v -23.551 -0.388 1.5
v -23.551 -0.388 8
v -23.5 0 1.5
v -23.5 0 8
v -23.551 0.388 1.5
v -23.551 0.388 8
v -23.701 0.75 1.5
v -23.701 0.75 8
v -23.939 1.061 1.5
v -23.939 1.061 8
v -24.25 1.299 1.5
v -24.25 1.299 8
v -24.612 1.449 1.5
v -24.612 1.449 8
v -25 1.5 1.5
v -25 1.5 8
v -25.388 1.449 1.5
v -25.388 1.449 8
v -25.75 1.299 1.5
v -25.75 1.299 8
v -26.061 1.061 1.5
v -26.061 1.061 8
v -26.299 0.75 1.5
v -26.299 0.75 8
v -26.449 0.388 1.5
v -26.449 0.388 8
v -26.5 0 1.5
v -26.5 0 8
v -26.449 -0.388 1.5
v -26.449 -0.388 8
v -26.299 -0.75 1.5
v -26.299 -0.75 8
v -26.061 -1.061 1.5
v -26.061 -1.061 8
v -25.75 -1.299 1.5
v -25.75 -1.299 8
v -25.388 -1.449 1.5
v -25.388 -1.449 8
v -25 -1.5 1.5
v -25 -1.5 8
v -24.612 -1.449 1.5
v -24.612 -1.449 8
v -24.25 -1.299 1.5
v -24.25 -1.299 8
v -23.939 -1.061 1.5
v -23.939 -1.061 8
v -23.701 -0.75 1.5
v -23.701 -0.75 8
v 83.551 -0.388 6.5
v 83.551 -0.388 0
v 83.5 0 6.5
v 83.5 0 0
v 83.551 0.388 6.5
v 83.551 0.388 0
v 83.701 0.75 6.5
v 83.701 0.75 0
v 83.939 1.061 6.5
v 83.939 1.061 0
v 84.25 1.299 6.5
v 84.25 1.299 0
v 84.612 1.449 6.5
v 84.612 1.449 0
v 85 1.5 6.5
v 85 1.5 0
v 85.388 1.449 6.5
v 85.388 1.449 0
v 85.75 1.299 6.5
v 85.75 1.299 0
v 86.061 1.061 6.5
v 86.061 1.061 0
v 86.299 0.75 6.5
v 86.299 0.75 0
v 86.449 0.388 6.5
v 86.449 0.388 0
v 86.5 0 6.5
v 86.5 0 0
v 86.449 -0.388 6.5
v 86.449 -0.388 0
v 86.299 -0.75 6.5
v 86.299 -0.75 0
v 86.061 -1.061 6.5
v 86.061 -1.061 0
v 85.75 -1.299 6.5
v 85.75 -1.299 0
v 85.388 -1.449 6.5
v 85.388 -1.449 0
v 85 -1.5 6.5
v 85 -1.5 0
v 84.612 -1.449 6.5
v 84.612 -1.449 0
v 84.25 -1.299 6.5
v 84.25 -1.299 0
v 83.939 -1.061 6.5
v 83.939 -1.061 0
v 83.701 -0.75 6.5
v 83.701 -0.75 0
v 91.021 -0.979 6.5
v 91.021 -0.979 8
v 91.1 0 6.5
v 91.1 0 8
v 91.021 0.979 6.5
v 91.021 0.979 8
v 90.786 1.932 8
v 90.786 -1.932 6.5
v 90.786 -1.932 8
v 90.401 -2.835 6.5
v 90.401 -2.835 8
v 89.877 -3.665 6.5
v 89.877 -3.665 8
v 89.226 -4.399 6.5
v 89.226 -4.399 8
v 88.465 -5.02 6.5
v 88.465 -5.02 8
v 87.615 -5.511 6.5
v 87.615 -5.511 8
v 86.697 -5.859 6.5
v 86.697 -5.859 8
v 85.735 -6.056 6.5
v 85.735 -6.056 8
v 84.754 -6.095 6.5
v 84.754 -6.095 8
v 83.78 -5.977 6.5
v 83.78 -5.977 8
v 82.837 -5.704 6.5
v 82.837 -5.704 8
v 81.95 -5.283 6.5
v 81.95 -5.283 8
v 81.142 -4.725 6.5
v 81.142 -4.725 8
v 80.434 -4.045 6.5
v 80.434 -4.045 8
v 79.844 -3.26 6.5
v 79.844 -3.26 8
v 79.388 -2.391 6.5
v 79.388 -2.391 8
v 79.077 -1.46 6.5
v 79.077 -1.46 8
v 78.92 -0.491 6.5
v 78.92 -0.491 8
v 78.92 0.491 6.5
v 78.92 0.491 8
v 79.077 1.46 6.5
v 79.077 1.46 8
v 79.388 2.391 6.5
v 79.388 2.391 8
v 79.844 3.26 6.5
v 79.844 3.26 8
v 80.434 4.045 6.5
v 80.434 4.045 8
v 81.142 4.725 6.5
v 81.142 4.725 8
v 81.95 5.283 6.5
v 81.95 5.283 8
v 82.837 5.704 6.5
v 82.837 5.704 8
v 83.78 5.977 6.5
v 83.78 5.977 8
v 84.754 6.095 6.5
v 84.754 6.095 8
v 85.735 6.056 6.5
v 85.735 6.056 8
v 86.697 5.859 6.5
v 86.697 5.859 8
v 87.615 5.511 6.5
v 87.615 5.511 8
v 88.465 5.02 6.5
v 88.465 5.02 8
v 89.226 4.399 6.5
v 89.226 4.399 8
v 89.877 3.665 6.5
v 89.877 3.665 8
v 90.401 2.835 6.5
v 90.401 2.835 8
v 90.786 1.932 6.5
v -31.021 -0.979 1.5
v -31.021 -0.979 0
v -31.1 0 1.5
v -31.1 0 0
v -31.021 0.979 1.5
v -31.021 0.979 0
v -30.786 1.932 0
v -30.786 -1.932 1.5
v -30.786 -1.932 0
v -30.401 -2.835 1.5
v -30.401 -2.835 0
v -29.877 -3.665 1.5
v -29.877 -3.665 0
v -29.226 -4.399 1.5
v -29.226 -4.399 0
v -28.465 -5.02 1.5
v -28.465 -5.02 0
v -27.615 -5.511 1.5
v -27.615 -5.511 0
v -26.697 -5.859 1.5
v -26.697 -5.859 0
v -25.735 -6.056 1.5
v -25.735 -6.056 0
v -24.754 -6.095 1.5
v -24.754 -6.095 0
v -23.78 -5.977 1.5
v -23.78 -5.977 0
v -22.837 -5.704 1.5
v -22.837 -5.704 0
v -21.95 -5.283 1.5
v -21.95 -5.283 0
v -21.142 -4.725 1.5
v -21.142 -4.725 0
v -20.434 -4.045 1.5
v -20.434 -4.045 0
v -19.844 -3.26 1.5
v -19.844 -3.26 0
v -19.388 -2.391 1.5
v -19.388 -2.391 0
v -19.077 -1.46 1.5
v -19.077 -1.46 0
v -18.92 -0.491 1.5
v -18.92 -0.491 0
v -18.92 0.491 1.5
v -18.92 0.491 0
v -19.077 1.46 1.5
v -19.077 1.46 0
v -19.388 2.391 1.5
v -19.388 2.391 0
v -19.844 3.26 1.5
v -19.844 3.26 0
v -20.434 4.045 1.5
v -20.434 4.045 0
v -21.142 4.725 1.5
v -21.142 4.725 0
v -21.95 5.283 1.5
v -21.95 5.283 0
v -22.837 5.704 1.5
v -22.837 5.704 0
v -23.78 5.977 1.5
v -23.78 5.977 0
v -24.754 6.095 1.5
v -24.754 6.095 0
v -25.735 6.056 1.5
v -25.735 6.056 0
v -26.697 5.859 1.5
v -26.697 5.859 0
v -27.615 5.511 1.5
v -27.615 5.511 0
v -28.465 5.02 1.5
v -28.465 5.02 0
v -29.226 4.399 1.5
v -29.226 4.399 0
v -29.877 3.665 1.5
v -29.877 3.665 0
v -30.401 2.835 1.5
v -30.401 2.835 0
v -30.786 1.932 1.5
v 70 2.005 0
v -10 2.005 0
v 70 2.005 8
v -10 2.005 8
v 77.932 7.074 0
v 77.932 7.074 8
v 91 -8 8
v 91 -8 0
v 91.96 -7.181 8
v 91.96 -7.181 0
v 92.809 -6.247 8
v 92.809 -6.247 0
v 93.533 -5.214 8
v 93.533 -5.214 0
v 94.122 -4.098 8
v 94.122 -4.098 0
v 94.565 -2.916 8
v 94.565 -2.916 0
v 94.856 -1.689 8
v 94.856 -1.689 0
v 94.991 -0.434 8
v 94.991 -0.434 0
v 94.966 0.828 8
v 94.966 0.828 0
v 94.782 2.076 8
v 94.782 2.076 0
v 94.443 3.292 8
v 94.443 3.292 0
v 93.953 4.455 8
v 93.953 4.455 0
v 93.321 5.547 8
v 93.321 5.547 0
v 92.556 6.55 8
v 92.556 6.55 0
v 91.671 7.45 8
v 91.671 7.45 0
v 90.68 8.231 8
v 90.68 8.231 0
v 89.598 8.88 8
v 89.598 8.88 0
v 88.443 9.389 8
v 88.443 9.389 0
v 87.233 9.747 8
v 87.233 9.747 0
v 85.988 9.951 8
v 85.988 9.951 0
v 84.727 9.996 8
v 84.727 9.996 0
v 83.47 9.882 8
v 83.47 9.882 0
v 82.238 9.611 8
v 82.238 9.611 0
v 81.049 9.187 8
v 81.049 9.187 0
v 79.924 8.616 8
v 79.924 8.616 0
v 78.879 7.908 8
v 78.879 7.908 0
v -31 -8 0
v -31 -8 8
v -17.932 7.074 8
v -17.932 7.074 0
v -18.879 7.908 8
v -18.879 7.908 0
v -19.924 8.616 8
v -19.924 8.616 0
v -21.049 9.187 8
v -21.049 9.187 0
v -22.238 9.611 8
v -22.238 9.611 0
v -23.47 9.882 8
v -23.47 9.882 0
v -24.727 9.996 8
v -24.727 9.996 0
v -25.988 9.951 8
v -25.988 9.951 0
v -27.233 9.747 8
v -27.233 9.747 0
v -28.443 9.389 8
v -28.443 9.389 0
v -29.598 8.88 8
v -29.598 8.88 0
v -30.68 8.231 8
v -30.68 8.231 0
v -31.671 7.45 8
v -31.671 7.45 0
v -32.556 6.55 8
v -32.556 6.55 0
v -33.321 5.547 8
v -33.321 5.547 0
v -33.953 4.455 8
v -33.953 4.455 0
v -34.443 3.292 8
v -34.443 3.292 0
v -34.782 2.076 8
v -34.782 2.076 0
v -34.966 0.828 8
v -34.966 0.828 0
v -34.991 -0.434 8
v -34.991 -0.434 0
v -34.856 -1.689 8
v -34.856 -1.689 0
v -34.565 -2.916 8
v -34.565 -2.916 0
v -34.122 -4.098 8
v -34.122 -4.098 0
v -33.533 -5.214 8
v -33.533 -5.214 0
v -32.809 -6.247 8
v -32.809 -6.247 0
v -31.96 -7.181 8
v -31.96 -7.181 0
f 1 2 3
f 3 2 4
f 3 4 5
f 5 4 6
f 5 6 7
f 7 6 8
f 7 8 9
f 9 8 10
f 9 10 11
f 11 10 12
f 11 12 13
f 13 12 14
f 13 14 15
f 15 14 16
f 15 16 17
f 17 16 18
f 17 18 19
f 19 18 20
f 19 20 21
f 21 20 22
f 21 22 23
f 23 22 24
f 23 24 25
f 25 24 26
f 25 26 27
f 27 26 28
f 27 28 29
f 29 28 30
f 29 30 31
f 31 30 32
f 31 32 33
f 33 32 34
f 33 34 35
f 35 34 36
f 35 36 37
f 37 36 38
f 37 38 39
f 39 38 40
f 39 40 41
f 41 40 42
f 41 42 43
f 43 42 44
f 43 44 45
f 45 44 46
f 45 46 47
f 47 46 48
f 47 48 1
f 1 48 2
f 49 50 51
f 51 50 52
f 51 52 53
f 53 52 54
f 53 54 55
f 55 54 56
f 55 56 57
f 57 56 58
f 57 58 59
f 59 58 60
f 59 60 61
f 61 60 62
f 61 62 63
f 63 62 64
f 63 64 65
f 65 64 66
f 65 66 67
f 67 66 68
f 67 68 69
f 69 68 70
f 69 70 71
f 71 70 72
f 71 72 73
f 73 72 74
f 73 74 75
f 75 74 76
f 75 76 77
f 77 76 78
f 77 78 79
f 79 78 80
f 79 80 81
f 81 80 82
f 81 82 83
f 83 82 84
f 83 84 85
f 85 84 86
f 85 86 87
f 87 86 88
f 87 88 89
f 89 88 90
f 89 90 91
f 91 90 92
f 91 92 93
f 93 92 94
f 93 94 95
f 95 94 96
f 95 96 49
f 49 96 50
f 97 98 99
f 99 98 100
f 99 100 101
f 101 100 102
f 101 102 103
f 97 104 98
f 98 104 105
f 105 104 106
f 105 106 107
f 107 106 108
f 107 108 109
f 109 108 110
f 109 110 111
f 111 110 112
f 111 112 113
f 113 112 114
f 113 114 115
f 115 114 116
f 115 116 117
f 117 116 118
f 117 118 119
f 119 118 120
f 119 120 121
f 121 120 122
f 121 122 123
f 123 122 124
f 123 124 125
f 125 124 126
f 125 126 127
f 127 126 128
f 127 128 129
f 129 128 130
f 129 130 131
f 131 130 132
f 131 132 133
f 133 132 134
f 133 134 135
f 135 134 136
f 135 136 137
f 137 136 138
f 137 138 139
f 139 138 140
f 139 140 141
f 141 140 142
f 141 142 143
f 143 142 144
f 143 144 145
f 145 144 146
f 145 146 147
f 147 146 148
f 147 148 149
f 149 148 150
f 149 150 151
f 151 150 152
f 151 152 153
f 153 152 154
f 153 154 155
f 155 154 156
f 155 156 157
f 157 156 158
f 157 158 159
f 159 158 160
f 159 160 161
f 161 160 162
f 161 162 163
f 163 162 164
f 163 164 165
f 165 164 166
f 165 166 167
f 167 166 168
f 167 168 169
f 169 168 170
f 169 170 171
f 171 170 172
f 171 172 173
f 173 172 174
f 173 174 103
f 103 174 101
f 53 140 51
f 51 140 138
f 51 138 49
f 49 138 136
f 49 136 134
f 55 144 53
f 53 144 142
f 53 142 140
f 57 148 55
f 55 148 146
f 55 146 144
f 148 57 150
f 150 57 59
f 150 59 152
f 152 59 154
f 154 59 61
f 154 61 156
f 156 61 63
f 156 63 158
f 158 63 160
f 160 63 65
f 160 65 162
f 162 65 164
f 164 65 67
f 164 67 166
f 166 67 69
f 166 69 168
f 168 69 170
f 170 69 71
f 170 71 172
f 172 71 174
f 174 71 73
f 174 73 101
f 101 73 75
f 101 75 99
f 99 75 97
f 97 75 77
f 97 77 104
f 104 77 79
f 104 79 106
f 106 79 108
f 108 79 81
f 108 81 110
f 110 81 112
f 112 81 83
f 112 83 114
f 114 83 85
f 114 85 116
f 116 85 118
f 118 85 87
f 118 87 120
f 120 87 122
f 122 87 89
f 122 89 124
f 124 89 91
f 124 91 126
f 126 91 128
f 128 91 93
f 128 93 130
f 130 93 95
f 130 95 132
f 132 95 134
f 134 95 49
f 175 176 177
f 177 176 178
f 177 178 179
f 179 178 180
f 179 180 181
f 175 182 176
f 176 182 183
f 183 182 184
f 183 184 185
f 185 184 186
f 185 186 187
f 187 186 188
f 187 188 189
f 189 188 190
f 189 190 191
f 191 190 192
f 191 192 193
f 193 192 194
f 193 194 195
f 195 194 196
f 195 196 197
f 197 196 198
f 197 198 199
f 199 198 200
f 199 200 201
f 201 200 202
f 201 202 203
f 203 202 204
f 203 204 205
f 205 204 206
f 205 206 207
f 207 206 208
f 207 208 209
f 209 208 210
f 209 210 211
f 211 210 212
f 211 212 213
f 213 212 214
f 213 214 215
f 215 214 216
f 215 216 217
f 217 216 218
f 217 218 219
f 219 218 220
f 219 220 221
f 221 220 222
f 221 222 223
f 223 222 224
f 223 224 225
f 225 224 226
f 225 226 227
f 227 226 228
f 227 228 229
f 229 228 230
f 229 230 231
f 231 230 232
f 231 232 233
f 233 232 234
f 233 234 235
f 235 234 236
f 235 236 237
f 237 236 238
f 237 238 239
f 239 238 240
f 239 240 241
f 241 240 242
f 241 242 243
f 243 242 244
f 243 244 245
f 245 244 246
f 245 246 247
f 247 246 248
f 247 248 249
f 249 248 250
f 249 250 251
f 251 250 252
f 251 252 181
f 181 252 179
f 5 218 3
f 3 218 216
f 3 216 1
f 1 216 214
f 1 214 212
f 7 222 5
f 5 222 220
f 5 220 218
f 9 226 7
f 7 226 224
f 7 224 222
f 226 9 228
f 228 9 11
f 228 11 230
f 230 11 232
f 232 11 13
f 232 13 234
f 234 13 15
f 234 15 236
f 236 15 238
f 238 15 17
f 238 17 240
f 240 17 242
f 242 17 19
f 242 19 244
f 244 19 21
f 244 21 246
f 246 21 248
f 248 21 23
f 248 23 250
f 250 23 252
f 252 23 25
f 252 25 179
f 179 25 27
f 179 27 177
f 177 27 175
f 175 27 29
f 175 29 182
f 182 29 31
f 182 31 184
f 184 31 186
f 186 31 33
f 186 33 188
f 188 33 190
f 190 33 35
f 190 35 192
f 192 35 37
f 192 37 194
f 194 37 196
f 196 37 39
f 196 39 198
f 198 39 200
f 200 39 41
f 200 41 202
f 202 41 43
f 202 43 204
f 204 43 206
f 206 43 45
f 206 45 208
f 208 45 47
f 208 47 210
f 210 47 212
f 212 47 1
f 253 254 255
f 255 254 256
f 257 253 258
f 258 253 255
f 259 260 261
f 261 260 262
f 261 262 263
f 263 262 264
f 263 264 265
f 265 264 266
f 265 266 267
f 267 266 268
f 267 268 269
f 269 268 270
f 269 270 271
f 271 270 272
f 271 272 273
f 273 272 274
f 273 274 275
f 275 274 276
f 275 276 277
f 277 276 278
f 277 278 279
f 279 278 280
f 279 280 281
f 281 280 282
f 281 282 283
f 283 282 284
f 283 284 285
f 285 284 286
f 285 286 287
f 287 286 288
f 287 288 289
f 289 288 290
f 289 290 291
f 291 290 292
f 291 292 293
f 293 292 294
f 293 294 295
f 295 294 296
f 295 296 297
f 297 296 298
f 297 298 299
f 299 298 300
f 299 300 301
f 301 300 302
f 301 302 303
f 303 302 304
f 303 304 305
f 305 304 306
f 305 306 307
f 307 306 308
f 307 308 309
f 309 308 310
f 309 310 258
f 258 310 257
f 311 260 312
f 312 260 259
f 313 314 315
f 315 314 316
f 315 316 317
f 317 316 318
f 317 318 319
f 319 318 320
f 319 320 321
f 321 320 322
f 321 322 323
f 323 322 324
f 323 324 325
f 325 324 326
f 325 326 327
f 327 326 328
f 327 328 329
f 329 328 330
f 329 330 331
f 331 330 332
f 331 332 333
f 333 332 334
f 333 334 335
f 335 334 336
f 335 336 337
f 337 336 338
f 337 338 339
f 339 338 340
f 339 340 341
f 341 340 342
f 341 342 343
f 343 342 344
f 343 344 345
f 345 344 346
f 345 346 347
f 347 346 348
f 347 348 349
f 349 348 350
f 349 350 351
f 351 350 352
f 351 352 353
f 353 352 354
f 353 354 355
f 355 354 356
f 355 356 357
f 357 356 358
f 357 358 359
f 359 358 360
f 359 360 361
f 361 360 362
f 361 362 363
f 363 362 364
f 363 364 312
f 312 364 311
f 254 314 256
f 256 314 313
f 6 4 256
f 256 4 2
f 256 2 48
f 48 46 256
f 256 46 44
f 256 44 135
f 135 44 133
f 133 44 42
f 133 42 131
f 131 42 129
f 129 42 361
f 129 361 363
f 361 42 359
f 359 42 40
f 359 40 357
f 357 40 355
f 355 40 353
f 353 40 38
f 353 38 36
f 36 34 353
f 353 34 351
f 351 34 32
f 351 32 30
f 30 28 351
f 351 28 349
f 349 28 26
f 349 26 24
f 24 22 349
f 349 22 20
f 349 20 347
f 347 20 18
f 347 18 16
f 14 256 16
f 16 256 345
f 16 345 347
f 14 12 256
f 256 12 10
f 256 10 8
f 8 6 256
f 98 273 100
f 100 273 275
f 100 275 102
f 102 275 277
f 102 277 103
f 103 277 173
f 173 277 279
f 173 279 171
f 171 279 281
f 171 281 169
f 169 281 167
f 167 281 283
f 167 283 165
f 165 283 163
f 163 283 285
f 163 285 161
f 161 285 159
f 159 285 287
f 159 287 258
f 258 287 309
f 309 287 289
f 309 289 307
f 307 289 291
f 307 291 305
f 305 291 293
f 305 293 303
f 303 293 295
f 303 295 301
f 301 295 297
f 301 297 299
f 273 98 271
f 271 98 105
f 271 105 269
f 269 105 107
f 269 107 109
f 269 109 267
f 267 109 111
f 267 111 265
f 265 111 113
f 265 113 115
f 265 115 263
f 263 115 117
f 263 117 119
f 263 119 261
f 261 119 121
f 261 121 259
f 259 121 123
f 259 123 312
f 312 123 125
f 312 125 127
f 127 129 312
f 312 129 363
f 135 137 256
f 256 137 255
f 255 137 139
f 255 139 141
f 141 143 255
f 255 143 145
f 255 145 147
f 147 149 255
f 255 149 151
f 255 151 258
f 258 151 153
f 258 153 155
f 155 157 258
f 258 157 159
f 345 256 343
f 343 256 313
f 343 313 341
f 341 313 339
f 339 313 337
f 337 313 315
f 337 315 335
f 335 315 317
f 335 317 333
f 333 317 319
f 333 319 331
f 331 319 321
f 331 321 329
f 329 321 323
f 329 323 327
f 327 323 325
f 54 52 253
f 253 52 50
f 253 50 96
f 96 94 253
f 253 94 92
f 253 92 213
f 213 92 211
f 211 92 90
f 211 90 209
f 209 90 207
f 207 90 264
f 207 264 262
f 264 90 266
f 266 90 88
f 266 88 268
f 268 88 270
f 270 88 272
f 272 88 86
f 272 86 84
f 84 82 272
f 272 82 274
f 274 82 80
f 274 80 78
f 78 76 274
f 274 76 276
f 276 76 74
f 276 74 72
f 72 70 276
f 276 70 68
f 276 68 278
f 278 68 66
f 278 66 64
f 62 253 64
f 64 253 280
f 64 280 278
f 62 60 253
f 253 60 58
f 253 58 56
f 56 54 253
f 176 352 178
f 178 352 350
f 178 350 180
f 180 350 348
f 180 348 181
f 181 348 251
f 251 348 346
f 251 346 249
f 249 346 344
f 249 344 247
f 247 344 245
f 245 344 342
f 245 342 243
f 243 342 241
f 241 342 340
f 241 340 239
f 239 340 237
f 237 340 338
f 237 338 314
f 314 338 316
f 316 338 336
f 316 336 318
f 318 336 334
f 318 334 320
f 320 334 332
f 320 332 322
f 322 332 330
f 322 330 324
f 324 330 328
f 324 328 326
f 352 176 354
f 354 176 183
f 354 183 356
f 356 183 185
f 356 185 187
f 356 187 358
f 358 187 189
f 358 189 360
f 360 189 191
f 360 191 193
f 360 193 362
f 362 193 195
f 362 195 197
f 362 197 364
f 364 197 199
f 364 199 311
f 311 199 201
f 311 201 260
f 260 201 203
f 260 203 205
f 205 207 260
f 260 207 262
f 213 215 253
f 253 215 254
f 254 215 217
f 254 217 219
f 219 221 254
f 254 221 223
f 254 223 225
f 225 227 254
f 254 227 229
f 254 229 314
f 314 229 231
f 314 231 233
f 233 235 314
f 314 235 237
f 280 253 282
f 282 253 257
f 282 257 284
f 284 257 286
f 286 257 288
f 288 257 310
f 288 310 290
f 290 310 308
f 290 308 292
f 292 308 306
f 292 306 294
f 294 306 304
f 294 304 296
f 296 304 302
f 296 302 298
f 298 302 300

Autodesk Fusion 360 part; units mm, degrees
sketch "Sketch2" plane through (0, 0, 0) normal (0, 0, 1) x (1, 0, 0)
  line L0 (91, -8) -> (-31, -8)
  line L1 (-10, 2.005) -> (70, 2.005)
  line L2 (70, 2.005) -> (77.9321, 7.0743)
  line L3 (-10, 2.005) -> (-17.9321, 7.0743)
  arc A0 (-17.9321, 7.0743) -> (-31, -8) centre (-25, 0) ccw
  arc A1 (91, -8) -> (77.9321, 7.0743) centre (85, 0) ccw
  dimension "d20" = 20
  dimension "d21" = 20
  dimension "d22" = 110
  dimension "d24" = 10.005
extrude "Extrude1" add sketch "Sketch2" along normal blind 8
sketch "Sketch3" plane through (0, 0, 8) normal (0, 0, 1) x (-1, 0, 0)
  line L0 (10, -2.005) -> (17.9321, -7.0743)
  arc A0 (17.9321, -7.0743) -> (31, 8) centre (25, 0) ccw
  line L1 (31, 8) -> (-91, 8)
  arc A1 (-91, 8) -> (-77.9321, -7.0743) centre (-85, 0) ccw
  line L2 (-77.9321, -7.0743) -> (-70, -2.005)
  line L3 (-70, -2.005) -> (10, -2.005)
  circle A2 centre (-85, 0) radius 6.1
  dimension "d28" = 12.2
sketch "Sketch4" plane through (0, 0, 0) normal (0, 0, -1) x (1, 0, 0)
  line L0 (-17.9321, -7.0743) -> (-10, -2.005)
  line L1 (-10, -2.005) -> (70, -2.005)
  line L2 (70, -2.005) -> (77.9321, -7.0743)
  arc A0 (77.9321, -7.0743) -> (91, 8) centre (85, 0) ccw
  line L3 (91, 8) -> (-31, 8)
  arc A1 (-31, 8) -> (-17.9321, -7.0743) centre (-25, 0) ccw
  circle A2 centre (-25, 0) radius 6.1
  dimension "d32" = 12.2
extrude "Extrude4" cut sketch "Sketch4" against normal blind 1.5 contours A2
extrude "Extrude5" cut sketch "Sketch3" against normal blind 1.5 contours A2
sketch "Sketch5" plane through (0, 0, 0) normal (0, 0, -1) x (1, 0, 0)
  circle A0 centre (-25, 0) radius 6.1
  line L0 (-17.9321, -7.0743) -> (-10, -2.005)
  line L1 (-10, -2.005) -> (70, -2.005)
  line L2 (70, -2.005) -> (77.9321, -7.0743)
  arc A1 (77.9321, -7.0743) -> (91, 8) centre (85, 0) ccw
  line L3 (91, 8) -> (-31, 8)
  arc A2 (-31, 8) -> (-17.9321, -7.0743) centre (-25, 0) ccw
  circle A3 centre (85, 0) radius 1.5
  dimension "d39" = 3
extrude "Extrude7" cut sketch "Sketch5" against normal blind 13 contours A3
sketch "Sketch6" plane through (0, 0, 8) normal (0, 0, 1) x (-1, 0, 0)
  circle A0 centre (-85, 0) radius 6.1
  line L0 (10, -2.005) -> (17.9321, -7.0743)
  arc A1 (17.9321, -7.0743) -> (31, 8) centre (25, 0) ccw
  line L1 (31, 8) -> (-91, 8)
  arc A2 (-91, 8) -> (-77.9321, -7.0743) centre (-85, 0) ccw
  line L2 (-77.9321, -7.0743) -> (-70, -2.005)
  line L3 (-70, -2.005) -> (10, -2.005)
  circle A3 centre (25, 0) radius 1.5
  dimension "d44" = 3
extrude "Extrude8" cut sketch "Sketch6" against normal blind 11 contours A3
component "arm1" placed x (1, 0, 0) y (0, 1, 0) z (0, 0, 1) at (0, 0, 0)
